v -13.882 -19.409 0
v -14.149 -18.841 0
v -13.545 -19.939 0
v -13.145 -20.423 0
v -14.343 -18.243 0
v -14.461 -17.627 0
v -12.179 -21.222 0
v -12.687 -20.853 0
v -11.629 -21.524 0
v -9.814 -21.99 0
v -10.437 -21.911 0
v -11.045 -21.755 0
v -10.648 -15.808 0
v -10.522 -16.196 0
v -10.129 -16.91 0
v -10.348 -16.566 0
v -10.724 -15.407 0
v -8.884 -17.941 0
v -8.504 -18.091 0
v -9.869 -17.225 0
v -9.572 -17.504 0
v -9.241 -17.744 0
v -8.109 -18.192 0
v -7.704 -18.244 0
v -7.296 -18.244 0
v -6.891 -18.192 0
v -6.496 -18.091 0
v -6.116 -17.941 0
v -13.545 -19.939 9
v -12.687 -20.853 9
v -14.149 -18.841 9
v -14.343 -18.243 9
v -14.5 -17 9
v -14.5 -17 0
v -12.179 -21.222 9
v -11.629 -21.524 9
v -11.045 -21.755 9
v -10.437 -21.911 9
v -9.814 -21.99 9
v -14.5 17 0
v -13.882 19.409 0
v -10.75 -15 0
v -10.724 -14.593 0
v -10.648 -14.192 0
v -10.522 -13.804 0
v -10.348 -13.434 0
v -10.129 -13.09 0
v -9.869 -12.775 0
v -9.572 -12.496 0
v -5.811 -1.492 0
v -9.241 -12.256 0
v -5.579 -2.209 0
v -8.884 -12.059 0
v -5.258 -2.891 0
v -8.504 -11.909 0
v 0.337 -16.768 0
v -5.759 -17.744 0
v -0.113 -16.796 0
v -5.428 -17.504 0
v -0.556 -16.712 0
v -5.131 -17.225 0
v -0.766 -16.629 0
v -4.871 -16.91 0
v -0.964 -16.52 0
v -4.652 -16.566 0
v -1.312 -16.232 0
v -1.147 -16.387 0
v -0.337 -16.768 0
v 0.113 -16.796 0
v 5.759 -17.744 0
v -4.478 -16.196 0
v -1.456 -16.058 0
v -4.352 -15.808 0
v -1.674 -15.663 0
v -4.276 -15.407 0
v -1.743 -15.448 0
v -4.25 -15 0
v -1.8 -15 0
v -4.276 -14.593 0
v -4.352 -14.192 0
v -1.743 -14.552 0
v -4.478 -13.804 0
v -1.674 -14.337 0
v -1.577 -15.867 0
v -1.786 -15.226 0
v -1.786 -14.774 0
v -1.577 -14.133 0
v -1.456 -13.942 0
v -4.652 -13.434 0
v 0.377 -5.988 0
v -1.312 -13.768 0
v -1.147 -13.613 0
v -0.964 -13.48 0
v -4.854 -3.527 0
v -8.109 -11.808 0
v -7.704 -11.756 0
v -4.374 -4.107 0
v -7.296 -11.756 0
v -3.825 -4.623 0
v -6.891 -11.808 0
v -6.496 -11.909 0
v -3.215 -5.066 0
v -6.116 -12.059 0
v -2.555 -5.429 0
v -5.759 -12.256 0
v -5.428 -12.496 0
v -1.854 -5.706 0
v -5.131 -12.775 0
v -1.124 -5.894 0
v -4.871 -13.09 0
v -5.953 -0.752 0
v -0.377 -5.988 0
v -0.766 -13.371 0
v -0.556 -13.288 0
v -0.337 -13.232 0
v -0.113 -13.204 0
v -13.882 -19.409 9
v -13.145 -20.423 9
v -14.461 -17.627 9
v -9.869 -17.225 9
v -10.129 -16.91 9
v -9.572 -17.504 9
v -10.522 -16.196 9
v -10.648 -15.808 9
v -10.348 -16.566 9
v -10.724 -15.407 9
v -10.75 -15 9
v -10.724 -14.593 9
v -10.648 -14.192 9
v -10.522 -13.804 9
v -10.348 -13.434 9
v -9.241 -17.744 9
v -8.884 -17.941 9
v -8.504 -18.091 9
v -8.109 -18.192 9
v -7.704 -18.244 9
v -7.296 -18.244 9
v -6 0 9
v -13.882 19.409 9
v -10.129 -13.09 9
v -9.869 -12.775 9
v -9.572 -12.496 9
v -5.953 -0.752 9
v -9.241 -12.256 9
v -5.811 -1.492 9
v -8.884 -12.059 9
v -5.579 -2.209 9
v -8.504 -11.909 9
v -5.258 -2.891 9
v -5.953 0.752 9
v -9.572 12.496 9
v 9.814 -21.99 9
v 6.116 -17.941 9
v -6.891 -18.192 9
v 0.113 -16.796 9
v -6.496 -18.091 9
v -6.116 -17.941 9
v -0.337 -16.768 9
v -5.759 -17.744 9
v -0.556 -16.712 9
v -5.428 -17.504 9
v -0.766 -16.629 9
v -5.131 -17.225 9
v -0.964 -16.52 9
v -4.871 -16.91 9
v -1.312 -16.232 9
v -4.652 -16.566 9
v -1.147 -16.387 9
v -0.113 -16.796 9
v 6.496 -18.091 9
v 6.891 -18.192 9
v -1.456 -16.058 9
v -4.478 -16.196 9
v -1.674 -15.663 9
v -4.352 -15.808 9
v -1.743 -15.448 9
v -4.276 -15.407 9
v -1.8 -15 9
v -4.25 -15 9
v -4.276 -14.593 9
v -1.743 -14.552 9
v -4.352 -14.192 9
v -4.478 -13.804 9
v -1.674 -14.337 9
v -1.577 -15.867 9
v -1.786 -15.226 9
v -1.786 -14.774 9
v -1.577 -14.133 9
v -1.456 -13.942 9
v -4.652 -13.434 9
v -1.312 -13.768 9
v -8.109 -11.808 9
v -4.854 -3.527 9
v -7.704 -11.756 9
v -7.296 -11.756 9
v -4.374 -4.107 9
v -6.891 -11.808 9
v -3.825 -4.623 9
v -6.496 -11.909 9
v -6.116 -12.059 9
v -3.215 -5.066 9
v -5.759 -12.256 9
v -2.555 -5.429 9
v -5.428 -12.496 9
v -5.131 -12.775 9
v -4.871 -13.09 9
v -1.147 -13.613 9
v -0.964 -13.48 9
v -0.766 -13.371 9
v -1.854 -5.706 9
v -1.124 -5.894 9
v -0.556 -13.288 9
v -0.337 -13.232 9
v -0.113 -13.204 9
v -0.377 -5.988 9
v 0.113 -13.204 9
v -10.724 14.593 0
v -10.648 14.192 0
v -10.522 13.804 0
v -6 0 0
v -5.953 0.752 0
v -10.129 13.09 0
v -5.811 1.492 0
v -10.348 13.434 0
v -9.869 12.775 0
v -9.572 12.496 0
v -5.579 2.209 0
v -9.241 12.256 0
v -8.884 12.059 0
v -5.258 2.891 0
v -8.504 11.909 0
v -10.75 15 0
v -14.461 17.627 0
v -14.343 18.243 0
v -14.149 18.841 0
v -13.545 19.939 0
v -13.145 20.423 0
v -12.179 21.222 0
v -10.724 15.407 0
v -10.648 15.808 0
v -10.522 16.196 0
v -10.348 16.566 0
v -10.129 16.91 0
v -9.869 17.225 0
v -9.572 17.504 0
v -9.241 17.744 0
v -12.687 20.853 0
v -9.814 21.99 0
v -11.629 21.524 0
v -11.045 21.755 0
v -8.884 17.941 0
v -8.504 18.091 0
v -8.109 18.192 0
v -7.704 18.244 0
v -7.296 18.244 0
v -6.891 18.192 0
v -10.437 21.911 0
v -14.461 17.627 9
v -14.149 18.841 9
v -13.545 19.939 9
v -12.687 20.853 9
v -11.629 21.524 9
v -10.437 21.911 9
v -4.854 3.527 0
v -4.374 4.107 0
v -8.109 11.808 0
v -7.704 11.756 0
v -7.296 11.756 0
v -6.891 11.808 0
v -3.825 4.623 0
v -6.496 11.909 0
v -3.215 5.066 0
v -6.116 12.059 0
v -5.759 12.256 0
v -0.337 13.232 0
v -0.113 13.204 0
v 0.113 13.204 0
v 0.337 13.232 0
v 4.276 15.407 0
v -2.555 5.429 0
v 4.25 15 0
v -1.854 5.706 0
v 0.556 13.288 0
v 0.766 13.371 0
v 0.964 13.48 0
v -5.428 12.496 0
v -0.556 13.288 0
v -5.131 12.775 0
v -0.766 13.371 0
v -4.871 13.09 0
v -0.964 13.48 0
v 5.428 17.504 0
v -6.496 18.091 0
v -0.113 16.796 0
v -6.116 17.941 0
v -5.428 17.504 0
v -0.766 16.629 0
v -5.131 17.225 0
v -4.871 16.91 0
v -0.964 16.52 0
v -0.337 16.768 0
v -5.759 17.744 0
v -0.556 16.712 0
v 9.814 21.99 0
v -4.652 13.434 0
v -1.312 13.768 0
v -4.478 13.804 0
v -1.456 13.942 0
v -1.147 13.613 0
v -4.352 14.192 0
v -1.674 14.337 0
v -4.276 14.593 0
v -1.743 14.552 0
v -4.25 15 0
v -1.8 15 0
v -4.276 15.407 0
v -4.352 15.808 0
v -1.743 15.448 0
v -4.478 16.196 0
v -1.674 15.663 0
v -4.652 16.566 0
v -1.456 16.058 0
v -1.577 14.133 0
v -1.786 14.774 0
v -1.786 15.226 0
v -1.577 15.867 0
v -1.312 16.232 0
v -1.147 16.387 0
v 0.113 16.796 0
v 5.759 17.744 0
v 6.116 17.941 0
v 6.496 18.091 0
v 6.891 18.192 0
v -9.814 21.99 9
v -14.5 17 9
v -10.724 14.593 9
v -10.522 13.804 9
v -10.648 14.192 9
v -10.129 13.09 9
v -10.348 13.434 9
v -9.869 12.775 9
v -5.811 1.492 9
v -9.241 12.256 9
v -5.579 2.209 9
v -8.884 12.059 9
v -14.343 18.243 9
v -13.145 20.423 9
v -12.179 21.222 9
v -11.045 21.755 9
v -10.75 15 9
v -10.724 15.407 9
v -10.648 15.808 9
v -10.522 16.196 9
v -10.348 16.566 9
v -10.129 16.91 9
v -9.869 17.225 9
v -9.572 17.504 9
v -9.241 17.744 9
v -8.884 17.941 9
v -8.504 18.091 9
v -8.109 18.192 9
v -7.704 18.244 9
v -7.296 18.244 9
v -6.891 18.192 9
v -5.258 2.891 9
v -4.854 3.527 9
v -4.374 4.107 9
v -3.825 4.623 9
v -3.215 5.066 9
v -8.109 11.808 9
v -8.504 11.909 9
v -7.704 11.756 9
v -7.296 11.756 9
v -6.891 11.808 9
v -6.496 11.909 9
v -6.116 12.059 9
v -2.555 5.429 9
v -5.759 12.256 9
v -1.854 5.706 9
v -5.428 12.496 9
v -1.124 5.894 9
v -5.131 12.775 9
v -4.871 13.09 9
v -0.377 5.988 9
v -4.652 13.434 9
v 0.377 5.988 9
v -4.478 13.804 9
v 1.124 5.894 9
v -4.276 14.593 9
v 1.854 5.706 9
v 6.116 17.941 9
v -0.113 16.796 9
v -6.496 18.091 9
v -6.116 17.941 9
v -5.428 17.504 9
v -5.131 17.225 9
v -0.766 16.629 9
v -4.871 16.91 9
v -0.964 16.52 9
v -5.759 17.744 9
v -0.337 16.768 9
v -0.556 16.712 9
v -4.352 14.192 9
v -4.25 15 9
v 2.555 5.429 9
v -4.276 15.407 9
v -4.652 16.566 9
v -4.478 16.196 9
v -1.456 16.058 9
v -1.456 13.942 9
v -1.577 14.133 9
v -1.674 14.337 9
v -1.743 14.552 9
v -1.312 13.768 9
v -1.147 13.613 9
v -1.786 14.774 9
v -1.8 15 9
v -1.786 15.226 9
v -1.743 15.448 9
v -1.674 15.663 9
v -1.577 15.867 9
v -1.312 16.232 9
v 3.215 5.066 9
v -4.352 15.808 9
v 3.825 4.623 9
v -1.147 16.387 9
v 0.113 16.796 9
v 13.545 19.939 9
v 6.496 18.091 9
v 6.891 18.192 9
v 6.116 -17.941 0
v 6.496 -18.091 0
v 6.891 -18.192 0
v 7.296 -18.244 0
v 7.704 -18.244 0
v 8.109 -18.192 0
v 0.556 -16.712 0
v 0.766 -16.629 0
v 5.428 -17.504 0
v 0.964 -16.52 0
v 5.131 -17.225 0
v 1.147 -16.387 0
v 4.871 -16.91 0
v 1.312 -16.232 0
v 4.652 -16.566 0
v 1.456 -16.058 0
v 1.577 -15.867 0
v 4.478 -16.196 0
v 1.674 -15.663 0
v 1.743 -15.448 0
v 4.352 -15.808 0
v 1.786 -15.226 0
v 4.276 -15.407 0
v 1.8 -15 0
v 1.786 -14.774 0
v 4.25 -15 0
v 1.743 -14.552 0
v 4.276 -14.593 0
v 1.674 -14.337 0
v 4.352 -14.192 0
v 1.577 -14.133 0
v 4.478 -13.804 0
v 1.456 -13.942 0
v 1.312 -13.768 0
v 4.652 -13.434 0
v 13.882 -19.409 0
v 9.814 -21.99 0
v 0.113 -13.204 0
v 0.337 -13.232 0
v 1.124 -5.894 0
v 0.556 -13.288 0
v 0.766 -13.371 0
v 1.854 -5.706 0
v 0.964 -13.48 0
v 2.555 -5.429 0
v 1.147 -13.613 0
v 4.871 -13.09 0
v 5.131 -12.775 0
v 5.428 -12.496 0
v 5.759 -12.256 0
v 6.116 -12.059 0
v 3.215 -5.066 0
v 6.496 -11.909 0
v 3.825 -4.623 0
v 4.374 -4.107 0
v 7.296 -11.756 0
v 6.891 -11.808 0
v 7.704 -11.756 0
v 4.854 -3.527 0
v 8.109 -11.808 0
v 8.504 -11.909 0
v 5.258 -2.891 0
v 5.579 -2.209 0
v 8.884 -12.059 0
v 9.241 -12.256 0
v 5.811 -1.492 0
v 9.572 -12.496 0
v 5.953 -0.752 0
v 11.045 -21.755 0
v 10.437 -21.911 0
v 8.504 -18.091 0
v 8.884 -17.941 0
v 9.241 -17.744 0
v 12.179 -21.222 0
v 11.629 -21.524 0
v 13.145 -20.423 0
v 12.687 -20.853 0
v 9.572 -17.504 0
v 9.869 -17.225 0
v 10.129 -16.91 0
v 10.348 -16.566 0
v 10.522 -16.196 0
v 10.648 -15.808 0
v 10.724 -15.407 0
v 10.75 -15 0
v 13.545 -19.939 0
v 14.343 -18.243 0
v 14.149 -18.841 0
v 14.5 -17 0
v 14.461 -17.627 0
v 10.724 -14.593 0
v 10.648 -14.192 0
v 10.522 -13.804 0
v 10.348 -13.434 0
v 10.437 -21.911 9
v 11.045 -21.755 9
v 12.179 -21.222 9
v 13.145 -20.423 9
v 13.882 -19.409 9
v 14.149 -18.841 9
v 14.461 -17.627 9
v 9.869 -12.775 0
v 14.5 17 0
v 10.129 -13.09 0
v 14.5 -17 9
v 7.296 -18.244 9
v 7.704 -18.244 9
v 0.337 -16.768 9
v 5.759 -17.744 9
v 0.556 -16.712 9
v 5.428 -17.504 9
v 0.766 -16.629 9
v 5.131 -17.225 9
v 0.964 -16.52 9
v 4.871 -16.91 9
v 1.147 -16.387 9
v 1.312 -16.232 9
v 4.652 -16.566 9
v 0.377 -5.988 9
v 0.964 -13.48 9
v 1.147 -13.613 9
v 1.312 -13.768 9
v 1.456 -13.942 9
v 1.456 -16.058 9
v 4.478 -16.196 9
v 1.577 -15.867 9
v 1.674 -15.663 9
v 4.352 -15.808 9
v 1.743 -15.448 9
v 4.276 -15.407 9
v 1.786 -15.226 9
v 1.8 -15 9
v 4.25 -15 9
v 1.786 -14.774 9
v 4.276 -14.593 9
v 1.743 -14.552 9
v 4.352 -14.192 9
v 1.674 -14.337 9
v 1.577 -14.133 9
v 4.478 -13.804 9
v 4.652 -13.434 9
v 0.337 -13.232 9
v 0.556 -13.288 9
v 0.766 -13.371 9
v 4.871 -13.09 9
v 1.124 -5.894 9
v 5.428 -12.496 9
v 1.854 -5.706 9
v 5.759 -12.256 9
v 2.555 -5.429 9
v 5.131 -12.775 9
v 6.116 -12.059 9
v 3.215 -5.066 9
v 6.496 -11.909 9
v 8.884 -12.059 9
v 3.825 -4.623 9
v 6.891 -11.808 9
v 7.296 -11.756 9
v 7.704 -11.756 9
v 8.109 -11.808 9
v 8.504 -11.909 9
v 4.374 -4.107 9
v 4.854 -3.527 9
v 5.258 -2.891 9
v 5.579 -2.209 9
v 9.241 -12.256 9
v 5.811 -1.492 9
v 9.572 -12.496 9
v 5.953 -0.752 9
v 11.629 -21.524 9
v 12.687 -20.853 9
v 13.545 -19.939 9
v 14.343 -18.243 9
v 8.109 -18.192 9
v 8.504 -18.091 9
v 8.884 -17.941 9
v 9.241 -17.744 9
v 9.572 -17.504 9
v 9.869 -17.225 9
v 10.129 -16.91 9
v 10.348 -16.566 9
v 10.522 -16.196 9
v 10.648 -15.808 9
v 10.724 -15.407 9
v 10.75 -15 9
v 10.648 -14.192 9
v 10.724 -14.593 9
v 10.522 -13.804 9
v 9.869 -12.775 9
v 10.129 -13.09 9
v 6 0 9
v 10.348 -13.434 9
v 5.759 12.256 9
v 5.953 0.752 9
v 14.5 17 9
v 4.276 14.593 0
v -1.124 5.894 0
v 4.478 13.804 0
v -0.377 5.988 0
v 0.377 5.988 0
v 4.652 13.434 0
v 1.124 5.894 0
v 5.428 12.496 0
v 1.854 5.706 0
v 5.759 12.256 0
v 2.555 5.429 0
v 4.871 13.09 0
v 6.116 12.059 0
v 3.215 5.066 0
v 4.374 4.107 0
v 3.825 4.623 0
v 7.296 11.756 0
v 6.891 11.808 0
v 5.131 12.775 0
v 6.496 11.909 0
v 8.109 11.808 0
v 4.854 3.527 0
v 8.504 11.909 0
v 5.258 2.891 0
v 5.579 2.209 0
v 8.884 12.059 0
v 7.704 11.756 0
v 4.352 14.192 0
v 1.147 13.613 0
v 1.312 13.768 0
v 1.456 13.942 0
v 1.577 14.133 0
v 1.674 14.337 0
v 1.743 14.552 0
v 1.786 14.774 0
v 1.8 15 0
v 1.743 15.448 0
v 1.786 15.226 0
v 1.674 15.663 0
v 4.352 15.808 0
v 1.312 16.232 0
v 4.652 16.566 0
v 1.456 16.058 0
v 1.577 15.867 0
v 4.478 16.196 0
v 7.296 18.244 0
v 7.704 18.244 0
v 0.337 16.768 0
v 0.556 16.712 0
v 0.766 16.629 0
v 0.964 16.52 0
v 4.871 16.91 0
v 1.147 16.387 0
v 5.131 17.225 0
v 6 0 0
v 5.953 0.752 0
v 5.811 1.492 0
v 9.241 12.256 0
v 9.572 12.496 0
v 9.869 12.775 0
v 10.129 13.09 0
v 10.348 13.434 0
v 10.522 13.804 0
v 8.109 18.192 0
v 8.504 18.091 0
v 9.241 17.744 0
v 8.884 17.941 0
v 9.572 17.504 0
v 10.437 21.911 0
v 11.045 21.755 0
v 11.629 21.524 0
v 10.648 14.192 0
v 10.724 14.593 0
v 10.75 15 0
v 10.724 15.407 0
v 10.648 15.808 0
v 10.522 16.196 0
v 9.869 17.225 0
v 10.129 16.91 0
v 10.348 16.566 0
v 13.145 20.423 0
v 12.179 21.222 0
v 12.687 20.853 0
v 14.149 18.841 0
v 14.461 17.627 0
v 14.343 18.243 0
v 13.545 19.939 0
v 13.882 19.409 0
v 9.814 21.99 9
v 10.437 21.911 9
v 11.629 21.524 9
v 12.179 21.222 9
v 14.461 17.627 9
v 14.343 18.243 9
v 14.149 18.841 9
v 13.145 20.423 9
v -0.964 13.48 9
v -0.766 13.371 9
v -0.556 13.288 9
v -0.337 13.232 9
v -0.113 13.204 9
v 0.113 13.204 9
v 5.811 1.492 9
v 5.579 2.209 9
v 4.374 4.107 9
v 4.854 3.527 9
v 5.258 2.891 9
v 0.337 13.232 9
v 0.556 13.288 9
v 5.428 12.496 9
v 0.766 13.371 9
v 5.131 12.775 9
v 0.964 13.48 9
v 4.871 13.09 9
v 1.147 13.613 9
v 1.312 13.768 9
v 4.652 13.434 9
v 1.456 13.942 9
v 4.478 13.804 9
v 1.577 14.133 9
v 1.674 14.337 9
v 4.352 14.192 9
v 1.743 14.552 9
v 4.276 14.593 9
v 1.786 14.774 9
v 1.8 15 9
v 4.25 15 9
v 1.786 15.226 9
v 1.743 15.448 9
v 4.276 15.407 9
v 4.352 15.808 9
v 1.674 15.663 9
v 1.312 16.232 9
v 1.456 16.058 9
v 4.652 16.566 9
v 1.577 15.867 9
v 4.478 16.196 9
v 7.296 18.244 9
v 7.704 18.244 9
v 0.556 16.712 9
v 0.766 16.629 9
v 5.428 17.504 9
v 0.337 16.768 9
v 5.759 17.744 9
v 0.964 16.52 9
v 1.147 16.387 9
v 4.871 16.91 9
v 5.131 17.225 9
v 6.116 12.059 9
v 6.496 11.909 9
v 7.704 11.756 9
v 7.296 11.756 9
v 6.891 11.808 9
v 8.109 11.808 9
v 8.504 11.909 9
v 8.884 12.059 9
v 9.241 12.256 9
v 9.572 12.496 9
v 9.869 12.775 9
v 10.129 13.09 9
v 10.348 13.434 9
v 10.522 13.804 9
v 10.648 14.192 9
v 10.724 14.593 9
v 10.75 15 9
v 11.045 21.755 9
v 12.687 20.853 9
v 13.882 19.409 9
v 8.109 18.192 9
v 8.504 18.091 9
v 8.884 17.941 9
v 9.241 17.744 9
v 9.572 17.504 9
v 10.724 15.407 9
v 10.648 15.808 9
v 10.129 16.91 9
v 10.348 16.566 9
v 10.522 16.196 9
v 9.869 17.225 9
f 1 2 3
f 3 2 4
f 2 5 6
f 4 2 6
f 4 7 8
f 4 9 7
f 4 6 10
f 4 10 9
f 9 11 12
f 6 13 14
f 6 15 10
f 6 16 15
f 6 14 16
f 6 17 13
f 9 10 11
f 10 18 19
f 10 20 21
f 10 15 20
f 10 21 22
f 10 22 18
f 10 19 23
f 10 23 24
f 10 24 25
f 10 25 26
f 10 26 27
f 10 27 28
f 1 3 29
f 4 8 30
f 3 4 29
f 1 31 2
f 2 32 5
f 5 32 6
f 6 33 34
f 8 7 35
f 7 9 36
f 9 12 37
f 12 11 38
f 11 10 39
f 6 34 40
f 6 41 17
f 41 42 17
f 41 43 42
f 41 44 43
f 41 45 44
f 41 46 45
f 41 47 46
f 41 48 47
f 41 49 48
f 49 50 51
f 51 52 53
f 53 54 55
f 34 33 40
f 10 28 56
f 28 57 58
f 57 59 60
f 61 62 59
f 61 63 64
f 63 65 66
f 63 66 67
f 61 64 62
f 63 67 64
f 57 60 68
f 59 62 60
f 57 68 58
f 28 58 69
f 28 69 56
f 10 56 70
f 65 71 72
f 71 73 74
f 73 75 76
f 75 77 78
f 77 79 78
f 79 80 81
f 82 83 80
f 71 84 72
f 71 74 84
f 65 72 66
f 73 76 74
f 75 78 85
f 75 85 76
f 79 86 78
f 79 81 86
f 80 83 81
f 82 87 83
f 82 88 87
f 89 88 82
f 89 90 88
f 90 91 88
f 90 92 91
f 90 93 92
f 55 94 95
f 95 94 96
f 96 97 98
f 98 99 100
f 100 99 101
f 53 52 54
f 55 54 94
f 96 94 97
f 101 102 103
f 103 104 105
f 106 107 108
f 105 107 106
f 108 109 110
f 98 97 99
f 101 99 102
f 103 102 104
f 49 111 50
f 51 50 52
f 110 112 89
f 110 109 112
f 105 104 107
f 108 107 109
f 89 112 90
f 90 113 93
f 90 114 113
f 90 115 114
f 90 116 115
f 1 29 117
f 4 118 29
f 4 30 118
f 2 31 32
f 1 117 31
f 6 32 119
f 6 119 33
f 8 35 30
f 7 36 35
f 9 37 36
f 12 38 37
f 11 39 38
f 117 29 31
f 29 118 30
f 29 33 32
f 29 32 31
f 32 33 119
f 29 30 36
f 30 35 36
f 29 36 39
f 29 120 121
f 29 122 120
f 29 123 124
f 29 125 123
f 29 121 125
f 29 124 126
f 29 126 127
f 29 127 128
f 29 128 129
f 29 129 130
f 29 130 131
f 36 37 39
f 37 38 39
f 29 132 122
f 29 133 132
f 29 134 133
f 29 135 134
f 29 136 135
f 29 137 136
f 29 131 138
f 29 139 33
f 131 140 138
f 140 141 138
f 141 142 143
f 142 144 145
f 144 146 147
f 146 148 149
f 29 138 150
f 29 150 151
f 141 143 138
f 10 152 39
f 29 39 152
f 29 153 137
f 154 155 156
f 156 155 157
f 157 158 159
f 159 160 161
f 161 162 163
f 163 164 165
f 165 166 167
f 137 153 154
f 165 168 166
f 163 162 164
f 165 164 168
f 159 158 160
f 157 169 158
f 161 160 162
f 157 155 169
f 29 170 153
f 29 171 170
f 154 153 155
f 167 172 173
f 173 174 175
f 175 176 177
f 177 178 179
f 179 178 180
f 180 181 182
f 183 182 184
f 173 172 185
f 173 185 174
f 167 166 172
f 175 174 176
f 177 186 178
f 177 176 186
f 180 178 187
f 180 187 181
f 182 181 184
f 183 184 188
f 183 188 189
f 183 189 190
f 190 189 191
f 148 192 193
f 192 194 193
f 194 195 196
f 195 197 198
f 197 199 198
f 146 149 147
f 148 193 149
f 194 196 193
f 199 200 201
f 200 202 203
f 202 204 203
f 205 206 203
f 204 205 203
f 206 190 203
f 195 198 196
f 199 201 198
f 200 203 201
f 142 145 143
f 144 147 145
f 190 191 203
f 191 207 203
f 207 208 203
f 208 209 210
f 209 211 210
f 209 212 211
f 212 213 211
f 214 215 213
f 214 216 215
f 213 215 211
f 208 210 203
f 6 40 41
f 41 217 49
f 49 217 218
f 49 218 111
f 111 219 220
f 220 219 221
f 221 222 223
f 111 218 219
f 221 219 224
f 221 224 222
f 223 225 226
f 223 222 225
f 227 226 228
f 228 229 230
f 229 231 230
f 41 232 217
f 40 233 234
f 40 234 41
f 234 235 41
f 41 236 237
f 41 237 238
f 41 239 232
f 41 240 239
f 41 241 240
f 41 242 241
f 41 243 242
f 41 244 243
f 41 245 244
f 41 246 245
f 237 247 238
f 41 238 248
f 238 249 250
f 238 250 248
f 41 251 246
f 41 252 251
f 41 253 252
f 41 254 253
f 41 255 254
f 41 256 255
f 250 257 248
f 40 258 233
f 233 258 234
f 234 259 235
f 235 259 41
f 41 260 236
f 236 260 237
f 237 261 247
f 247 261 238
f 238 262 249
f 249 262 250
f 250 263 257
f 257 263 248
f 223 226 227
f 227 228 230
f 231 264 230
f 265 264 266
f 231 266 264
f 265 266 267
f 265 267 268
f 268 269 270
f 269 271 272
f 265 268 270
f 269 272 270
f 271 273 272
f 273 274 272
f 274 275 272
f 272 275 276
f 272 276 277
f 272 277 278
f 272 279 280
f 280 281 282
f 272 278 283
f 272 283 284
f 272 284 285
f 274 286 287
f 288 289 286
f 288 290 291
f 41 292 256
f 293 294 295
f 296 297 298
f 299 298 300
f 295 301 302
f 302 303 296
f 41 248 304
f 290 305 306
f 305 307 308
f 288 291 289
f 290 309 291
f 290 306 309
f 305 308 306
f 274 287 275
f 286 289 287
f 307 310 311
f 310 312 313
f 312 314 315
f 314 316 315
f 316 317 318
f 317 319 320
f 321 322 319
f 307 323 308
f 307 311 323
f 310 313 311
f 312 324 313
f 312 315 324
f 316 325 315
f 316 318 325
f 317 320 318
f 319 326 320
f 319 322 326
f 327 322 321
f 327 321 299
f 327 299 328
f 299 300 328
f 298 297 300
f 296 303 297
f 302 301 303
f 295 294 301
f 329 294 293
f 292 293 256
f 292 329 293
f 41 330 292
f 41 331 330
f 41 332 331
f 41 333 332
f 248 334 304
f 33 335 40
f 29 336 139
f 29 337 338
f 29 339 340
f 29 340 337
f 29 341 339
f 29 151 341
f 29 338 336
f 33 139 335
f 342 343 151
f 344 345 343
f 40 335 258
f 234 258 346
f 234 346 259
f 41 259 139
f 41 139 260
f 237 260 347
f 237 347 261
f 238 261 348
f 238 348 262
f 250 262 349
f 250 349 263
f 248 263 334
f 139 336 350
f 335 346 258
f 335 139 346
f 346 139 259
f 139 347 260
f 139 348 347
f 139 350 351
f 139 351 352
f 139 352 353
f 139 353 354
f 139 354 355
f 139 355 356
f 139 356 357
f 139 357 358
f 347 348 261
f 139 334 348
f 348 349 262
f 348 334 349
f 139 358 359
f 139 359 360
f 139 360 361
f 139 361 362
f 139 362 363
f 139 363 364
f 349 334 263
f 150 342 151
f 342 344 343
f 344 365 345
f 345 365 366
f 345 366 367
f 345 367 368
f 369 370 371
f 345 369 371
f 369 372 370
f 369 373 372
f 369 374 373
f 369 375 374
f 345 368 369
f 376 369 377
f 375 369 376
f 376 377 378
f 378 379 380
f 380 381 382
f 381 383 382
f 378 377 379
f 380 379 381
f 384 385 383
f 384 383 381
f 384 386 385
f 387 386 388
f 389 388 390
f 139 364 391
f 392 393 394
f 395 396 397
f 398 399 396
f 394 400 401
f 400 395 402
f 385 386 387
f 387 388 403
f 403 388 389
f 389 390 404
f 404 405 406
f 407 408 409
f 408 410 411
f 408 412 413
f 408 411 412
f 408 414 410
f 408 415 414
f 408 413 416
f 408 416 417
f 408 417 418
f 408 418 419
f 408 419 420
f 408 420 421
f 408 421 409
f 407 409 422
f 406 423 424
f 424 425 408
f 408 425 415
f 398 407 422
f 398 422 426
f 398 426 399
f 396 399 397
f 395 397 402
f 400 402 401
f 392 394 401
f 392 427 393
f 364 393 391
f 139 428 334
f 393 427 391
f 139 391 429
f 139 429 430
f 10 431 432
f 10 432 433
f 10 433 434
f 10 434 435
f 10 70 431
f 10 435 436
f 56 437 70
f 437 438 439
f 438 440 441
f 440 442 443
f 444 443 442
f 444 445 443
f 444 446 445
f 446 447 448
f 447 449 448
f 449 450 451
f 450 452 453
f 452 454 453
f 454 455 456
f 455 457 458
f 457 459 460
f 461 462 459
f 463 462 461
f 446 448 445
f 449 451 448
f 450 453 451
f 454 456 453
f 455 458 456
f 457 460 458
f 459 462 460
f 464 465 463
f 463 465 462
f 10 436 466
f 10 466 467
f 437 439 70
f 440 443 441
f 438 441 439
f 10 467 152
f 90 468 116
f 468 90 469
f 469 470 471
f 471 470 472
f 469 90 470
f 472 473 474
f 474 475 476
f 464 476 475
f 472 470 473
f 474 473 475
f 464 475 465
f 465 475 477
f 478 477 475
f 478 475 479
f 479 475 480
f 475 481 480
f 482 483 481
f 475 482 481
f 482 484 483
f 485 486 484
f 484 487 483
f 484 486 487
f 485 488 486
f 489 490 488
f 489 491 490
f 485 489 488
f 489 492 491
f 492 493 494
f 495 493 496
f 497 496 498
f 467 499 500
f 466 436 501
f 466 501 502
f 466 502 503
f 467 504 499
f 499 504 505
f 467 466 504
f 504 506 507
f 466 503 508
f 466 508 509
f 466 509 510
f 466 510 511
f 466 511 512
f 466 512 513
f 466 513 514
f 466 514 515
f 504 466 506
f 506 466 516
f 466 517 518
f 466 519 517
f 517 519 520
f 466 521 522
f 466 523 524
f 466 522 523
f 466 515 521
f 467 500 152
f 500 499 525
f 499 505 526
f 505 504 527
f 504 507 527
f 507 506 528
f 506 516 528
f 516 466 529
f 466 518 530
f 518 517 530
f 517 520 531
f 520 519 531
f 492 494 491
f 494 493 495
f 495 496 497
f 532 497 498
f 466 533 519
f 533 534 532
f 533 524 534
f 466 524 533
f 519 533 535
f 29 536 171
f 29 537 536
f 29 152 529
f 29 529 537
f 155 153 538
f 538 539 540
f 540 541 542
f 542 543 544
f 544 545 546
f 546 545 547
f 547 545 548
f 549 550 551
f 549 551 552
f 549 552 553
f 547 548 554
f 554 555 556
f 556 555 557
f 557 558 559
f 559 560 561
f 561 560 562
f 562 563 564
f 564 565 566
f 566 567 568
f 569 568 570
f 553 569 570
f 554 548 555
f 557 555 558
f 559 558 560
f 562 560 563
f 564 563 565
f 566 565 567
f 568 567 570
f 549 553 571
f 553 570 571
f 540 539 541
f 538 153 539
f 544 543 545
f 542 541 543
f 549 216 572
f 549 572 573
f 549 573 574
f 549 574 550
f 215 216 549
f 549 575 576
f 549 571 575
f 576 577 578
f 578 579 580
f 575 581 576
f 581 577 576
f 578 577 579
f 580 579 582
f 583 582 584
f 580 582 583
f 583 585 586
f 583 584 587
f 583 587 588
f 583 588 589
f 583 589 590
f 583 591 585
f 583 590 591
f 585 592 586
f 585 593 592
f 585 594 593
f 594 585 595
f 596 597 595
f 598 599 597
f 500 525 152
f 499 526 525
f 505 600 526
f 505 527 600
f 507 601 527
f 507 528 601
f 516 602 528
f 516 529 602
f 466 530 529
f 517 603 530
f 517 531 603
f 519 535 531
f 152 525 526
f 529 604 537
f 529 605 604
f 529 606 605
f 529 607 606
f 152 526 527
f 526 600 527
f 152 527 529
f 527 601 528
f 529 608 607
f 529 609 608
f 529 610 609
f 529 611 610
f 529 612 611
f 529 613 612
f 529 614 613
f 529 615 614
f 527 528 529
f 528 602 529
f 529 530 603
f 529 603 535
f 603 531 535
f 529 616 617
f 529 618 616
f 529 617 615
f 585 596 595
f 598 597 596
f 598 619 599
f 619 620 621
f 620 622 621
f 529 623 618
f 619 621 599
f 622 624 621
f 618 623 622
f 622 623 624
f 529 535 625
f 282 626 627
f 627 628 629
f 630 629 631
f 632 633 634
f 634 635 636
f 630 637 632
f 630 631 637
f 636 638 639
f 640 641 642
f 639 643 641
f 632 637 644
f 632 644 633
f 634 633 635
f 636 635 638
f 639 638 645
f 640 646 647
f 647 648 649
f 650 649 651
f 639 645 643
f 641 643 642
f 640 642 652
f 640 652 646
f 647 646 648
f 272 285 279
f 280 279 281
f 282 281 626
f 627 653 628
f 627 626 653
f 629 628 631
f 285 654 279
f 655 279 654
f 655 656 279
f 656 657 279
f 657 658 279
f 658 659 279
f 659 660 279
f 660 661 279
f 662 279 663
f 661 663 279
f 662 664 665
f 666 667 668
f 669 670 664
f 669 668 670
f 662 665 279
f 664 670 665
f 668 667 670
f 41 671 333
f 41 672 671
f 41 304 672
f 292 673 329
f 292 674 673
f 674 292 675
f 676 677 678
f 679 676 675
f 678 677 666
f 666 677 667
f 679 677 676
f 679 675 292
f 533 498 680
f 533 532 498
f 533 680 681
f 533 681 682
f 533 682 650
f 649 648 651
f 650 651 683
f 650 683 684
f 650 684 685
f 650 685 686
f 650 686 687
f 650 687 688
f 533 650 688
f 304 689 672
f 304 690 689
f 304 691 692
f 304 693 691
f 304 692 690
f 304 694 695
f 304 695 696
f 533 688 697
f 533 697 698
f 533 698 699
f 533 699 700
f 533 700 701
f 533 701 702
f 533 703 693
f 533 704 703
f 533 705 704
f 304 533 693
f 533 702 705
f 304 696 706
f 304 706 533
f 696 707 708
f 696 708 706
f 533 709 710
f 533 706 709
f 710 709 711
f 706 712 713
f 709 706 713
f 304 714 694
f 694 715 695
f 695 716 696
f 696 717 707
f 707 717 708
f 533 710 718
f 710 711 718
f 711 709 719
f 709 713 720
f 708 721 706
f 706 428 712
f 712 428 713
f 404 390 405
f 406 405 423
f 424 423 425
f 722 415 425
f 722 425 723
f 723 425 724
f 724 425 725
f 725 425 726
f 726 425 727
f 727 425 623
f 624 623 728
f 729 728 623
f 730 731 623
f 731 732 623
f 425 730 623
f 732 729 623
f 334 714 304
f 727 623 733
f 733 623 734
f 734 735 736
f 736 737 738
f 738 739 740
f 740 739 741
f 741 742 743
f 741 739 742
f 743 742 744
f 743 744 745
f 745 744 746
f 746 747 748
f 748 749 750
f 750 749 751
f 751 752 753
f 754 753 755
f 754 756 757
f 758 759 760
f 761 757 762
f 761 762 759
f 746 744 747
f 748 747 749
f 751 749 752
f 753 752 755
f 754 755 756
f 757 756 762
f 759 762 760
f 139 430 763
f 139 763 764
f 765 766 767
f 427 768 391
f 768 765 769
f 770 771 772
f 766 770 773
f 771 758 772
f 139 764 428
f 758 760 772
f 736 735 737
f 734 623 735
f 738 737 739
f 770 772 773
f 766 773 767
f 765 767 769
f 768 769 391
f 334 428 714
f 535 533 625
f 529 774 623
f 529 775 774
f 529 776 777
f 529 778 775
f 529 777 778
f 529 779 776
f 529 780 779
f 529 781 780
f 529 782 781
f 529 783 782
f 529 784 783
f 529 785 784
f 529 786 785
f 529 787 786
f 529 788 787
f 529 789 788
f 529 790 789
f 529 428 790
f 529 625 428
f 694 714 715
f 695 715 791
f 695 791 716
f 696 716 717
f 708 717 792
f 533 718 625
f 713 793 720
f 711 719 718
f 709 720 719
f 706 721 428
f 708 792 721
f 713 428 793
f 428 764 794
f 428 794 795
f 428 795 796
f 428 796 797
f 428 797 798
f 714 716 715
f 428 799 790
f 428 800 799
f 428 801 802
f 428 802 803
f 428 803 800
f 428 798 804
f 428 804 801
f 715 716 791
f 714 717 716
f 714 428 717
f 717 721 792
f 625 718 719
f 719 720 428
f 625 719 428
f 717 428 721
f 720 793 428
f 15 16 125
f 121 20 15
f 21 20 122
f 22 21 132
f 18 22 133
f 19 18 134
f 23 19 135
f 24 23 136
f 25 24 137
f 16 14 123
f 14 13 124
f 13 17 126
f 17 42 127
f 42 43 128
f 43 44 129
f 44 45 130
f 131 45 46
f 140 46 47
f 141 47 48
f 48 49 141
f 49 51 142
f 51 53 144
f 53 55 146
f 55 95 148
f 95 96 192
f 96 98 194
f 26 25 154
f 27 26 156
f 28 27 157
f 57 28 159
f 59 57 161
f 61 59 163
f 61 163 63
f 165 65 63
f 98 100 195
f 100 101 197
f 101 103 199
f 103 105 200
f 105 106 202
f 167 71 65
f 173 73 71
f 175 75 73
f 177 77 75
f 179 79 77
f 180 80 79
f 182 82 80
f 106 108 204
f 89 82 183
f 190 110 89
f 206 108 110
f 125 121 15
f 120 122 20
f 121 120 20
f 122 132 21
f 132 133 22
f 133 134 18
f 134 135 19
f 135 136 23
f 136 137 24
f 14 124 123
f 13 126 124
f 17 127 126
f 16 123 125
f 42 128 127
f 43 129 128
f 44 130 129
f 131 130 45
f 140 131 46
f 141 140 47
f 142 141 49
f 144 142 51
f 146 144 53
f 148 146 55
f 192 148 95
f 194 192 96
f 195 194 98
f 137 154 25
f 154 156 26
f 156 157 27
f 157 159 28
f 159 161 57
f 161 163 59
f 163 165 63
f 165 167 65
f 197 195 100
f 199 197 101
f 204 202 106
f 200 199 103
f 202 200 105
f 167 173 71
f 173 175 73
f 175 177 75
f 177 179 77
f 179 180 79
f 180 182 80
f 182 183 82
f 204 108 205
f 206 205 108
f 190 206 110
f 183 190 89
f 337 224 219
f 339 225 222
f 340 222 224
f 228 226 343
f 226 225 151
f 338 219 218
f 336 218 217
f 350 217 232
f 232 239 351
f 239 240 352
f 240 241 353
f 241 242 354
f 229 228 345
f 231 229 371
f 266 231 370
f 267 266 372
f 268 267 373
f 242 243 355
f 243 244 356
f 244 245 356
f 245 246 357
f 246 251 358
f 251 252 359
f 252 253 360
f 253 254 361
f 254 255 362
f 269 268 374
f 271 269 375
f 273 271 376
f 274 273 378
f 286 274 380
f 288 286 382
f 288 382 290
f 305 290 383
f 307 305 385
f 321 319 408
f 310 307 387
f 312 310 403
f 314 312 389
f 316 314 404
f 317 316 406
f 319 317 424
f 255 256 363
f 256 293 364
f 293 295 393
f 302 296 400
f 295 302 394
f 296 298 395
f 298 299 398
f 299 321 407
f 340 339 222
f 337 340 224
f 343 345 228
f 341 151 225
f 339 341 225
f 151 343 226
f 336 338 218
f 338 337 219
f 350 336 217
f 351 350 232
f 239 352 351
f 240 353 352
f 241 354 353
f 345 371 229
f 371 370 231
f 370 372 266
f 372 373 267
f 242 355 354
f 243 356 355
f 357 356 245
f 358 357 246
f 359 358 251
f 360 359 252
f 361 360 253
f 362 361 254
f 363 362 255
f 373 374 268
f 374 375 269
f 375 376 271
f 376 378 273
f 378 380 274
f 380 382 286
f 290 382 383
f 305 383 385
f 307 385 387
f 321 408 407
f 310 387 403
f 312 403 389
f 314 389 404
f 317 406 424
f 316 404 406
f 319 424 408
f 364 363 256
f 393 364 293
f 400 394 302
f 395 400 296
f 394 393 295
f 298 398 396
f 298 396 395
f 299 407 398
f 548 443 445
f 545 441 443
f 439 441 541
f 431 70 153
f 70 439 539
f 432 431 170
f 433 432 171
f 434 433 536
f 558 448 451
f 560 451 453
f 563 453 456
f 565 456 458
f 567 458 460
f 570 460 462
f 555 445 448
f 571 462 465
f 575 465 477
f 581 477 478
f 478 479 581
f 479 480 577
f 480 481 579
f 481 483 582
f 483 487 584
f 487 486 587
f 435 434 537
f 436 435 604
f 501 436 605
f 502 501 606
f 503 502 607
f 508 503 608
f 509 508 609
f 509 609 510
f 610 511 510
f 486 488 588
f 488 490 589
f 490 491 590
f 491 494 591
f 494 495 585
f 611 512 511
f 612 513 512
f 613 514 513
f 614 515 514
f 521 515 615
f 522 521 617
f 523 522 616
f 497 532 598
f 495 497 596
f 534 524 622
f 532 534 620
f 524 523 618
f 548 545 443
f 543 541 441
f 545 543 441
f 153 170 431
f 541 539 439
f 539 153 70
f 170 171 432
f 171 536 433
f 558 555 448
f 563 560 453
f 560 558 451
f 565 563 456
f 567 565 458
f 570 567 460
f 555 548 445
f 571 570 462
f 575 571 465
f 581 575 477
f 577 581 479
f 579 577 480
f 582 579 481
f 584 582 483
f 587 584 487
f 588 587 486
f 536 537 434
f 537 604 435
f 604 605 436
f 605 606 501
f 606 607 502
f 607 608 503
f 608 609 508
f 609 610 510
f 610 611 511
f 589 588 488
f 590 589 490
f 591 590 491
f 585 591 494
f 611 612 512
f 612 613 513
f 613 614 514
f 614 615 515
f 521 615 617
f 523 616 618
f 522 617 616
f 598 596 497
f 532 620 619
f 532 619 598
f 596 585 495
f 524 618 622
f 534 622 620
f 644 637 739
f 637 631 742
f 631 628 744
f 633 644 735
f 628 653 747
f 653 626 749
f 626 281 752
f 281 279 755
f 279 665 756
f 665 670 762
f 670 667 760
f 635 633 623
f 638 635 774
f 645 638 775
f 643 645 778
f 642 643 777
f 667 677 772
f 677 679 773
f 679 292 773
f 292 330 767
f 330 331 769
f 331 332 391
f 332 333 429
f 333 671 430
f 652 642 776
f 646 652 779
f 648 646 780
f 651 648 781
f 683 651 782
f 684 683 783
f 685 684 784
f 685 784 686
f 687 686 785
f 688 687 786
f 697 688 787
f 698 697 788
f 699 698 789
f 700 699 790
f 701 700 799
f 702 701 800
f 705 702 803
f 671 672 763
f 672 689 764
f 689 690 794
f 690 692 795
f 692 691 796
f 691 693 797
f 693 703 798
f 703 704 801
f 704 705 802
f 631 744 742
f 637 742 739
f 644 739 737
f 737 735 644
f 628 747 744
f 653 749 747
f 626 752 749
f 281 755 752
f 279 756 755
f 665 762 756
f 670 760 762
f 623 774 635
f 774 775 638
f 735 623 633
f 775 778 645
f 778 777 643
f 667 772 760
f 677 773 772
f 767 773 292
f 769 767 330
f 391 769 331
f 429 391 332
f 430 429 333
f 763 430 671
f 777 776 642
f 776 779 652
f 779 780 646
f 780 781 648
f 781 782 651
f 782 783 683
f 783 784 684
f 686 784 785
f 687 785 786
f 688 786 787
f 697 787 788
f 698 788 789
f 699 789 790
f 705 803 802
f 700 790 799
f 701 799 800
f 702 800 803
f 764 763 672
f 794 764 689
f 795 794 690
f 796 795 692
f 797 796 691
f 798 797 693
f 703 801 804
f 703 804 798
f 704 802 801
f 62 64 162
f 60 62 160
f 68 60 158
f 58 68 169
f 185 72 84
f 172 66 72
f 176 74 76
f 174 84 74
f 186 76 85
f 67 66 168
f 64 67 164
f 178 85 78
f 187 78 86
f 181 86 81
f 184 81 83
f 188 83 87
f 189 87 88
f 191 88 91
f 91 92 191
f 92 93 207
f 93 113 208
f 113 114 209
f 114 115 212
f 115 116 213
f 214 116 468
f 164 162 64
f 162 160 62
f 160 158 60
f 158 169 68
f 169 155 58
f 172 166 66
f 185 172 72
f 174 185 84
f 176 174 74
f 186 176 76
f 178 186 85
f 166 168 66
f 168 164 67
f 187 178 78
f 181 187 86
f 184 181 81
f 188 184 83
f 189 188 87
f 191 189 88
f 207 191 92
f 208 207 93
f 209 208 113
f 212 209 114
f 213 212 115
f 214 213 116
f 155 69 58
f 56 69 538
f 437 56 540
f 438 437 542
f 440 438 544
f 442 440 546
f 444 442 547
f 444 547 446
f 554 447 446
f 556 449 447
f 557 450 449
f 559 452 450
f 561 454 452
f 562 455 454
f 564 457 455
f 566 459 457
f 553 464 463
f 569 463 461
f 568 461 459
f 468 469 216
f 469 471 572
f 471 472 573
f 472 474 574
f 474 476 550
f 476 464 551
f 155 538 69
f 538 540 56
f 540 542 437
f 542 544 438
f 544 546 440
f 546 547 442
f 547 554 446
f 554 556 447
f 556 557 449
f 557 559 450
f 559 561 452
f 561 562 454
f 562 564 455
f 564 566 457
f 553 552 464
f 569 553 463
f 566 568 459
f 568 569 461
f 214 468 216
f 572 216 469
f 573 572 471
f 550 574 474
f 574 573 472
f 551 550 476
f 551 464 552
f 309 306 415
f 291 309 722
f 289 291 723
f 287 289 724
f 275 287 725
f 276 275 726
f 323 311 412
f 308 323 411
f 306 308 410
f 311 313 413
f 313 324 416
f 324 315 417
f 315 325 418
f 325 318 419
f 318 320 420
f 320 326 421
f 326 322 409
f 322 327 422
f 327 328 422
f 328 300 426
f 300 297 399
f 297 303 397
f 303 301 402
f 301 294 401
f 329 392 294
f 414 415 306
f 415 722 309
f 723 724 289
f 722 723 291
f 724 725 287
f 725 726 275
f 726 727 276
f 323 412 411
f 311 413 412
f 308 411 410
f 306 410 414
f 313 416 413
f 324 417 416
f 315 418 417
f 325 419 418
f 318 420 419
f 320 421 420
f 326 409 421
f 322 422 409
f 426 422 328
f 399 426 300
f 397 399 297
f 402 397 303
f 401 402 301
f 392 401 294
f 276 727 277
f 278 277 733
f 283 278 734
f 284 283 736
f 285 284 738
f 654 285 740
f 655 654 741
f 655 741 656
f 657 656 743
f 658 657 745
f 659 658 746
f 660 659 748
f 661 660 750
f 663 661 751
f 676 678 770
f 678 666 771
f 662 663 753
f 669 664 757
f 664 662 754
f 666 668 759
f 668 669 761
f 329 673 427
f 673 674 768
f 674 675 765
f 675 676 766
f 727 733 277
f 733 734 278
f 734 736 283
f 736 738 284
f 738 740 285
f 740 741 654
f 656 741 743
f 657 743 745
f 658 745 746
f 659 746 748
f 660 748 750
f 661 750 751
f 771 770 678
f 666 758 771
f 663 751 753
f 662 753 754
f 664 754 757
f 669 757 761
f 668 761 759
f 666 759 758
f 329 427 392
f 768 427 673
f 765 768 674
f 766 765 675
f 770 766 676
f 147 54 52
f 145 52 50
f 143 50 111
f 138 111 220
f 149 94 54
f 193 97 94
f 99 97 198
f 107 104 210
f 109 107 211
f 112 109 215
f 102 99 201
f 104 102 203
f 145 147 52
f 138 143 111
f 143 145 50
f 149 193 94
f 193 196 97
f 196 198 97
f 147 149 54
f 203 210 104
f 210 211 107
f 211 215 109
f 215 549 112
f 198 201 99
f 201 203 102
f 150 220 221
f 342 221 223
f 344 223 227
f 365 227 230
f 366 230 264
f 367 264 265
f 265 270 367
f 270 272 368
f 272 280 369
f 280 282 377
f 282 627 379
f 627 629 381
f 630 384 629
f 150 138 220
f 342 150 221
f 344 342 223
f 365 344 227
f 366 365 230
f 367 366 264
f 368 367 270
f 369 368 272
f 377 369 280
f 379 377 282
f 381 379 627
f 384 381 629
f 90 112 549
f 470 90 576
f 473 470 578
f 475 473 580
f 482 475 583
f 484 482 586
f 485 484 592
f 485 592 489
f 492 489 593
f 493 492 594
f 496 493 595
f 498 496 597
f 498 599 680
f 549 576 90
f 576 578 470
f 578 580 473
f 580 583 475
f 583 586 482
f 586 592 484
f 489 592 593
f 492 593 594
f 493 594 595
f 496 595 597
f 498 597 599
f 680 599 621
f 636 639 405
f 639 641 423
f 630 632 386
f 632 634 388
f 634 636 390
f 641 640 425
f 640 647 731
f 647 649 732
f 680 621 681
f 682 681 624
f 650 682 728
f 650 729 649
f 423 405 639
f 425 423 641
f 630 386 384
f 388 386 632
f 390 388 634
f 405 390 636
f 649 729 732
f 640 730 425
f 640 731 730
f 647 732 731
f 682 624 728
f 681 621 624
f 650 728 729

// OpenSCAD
$fn = 50;

difference() {
	union() {
		hull() {
			translate(v = [-9.5, 17.0, 0]) {
				cylinder(h = 9, r = 5);
			}
			translate(v = [9.5, 17.0, 0]) {
				cylinder(h = 9, r = 5);
			}
			translate(v = [-9.5, -17.0, 0]) {
				cylinder(h = 9, r = 5);
			}
			translate(v = [9.5, -17.0, 0]) {
				cylinder(h = 9, r = 5);
			}
		}
	}
	union() {
		translate(v = [-7.5, -15.0, 0]) {
			cylinder(h = 9, r = 3.25);
		}
		translate(v = [-7.5, 15.0, 0]) {
			cylinder(h = 9, r = 3.25);
		}
		translate(v = [7.5, -15.0, 0]) {
			cylinder(h = 9, r = 3.25);
		}
		translate(v = [7.5, 15.0, 0]) {
			cylinder(h = 9, r = 3.25);
		}
		translate(v = [0.0, -15.0, 0]) {
			cylinder(h = 9, r = 1.8);
		}
		translate(v = [0.0, 15.0, 0]) {
			cylinder(h = 9, r = 1.8);
		}
		cylinder(h = 9, r = 6.0);
	}
}
